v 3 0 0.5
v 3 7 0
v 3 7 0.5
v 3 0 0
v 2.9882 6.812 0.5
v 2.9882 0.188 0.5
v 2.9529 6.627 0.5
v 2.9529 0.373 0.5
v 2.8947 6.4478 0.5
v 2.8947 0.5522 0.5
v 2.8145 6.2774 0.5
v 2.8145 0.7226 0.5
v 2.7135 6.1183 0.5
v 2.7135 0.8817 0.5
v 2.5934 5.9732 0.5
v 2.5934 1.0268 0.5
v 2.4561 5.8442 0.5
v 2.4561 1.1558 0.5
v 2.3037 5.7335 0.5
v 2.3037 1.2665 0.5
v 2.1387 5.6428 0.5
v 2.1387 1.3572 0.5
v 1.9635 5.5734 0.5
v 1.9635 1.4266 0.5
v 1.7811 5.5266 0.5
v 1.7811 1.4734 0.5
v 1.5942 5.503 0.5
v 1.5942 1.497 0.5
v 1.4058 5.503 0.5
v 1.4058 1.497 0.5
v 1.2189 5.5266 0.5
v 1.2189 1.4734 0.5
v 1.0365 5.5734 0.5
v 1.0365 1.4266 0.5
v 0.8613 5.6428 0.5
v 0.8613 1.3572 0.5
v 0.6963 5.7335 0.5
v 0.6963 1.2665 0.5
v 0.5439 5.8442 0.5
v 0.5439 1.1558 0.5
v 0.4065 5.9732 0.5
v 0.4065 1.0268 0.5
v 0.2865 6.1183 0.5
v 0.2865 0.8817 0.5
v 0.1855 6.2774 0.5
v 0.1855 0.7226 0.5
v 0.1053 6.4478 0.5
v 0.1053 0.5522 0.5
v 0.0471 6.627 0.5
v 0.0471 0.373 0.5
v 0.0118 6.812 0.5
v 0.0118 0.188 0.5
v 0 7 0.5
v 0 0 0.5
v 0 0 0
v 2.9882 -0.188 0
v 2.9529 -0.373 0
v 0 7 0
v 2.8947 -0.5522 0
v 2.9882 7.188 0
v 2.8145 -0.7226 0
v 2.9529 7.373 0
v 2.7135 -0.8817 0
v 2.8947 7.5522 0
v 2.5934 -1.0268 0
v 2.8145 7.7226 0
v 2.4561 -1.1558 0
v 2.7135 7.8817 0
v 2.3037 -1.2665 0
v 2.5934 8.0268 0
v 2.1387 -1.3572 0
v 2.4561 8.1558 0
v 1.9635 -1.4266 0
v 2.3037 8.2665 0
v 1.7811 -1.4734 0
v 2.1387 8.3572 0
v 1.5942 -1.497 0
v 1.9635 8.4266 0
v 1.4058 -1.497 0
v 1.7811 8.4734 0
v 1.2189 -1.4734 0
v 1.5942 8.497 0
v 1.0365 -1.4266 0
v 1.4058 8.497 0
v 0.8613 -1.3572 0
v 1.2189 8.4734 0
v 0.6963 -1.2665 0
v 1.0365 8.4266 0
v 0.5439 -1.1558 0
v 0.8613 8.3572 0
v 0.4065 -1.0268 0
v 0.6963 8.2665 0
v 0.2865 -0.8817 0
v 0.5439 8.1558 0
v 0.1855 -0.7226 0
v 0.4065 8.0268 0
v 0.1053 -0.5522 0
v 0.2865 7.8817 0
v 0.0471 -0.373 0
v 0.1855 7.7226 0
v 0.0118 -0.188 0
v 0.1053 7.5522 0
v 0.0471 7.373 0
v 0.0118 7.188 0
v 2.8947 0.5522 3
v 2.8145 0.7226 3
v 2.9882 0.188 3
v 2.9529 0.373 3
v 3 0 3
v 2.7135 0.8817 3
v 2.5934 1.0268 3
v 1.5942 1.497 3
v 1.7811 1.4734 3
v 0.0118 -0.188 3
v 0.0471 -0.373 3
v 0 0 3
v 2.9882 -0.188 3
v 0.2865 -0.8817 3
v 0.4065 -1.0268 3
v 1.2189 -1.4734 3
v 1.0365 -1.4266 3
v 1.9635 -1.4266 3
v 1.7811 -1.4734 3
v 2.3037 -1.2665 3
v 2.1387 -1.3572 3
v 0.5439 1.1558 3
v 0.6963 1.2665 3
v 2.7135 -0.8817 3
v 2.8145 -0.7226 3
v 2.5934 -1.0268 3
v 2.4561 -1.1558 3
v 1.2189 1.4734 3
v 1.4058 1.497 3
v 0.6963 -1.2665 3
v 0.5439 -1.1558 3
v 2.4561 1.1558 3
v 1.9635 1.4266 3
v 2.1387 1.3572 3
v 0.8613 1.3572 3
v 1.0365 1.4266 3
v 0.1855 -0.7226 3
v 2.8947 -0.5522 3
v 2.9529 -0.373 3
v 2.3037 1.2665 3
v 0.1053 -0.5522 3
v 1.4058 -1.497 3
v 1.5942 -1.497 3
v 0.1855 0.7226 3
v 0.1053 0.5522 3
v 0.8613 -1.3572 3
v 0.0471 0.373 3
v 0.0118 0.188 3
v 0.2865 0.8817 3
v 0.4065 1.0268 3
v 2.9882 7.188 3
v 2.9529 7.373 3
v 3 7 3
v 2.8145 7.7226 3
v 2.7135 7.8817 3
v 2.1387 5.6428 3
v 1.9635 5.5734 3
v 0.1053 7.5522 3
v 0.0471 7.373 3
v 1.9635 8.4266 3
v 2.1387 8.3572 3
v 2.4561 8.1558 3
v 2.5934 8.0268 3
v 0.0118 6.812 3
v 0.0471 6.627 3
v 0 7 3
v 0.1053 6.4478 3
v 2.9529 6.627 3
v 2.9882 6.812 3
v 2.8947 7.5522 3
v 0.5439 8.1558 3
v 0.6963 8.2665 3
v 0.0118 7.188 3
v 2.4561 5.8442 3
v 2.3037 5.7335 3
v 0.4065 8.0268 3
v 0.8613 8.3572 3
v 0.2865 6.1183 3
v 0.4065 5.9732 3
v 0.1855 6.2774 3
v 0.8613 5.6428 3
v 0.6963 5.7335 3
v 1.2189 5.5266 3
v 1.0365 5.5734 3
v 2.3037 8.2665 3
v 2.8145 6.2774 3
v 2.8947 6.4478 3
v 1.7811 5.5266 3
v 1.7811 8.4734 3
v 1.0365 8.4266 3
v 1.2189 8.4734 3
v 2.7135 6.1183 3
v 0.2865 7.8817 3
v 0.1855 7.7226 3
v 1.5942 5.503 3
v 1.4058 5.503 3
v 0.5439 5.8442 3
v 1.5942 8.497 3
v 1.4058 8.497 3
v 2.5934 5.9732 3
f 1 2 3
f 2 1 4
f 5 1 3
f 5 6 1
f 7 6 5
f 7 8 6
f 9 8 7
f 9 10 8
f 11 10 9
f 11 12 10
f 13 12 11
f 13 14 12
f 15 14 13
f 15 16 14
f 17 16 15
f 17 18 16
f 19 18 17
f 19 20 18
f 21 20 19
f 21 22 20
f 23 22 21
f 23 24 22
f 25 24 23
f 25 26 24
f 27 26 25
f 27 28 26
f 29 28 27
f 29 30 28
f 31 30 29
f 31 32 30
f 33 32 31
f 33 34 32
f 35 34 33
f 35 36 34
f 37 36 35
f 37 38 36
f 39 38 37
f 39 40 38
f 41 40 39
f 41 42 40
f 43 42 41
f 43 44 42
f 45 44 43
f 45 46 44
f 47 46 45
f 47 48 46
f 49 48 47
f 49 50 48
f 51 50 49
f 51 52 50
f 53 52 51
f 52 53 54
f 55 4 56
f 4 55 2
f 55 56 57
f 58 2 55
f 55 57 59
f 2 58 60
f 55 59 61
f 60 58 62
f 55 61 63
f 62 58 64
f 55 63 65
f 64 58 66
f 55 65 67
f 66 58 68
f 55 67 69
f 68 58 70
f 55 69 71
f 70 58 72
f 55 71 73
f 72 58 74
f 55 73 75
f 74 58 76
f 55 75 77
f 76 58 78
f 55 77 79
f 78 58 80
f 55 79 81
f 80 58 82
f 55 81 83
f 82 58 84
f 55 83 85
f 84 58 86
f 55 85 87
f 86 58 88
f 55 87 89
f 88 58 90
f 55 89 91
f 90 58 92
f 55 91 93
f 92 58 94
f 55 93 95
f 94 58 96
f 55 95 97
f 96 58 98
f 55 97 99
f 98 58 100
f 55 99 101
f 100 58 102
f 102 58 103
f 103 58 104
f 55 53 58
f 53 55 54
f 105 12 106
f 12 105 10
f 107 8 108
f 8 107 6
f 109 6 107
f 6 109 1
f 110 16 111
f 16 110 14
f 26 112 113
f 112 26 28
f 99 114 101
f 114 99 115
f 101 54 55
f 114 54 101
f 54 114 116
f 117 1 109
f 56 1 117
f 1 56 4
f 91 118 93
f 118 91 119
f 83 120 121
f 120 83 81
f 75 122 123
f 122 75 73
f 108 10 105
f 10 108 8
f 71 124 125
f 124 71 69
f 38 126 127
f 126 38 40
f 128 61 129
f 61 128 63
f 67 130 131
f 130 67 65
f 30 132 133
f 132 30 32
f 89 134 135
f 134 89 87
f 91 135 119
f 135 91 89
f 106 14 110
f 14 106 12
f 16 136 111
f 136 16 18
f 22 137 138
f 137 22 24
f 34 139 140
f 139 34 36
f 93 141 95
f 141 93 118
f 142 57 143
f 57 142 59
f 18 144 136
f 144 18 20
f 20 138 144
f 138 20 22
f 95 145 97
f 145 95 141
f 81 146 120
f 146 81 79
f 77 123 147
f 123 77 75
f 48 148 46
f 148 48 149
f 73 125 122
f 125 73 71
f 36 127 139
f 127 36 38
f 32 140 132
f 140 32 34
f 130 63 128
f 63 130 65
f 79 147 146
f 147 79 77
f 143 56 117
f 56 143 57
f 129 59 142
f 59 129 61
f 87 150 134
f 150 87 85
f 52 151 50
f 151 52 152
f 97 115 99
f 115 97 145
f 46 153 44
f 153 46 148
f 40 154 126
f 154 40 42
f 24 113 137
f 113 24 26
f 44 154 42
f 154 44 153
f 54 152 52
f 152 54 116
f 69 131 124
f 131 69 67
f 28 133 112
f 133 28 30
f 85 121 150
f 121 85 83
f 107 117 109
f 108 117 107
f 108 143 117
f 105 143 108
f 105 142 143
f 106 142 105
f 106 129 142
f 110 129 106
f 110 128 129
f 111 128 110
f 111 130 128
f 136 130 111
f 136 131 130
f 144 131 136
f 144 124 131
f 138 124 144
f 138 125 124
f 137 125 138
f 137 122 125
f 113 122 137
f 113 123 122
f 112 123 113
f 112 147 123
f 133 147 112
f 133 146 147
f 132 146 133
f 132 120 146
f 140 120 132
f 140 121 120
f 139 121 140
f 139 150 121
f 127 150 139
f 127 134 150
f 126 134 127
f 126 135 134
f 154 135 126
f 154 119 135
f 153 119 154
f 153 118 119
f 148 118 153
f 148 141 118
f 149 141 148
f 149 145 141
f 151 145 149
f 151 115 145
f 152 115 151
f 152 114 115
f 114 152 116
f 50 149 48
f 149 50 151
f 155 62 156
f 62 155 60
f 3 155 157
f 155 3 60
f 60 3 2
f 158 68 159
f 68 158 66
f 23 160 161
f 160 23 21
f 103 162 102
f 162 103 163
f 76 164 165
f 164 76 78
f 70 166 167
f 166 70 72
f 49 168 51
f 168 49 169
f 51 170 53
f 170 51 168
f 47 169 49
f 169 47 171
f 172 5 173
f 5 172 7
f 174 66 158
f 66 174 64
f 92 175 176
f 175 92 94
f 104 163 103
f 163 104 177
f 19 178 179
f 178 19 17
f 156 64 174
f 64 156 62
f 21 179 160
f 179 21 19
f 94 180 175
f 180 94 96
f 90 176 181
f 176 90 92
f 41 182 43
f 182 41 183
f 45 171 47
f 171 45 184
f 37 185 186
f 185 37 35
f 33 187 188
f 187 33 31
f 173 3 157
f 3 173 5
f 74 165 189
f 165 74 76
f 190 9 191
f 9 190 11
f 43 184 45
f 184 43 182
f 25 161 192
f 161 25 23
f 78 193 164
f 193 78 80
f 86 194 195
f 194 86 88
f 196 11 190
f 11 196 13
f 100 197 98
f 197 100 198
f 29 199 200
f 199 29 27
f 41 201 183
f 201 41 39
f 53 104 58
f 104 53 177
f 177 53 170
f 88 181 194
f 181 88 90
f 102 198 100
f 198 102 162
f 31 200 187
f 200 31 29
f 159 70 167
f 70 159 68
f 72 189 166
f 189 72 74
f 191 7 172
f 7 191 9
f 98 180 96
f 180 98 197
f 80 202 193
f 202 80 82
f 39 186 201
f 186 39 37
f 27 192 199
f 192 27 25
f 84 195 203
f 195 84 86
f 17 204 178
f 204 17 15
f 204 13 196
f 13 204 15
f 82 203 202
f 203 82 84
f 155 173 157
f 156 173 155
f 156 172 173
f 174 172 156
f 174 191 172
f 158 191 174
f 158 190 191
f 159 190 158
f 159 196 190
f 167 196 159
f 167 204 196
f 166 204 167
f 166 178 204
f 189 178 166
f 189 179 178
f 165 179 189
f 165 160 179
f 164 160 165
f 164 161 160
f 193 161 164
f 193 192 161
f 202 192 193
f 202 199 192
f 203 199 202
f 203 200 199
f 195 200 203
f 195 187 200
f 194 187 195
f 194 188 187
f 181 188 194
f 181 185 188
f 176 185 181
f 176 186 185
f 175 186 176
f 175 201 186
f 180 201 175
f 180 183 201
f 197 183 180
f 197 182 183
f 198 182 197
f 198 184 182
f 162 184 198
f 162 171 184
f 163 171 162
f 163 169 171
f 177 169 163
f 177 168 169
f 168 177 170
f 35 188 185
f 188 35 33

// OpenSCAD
$fn = 50;
cube([3,7, 0.5]);
translate([1.5,0,0]) cylinder(d=3, h=3);
translate([1.5,7,0]) cylinder(d=3, h=3);
